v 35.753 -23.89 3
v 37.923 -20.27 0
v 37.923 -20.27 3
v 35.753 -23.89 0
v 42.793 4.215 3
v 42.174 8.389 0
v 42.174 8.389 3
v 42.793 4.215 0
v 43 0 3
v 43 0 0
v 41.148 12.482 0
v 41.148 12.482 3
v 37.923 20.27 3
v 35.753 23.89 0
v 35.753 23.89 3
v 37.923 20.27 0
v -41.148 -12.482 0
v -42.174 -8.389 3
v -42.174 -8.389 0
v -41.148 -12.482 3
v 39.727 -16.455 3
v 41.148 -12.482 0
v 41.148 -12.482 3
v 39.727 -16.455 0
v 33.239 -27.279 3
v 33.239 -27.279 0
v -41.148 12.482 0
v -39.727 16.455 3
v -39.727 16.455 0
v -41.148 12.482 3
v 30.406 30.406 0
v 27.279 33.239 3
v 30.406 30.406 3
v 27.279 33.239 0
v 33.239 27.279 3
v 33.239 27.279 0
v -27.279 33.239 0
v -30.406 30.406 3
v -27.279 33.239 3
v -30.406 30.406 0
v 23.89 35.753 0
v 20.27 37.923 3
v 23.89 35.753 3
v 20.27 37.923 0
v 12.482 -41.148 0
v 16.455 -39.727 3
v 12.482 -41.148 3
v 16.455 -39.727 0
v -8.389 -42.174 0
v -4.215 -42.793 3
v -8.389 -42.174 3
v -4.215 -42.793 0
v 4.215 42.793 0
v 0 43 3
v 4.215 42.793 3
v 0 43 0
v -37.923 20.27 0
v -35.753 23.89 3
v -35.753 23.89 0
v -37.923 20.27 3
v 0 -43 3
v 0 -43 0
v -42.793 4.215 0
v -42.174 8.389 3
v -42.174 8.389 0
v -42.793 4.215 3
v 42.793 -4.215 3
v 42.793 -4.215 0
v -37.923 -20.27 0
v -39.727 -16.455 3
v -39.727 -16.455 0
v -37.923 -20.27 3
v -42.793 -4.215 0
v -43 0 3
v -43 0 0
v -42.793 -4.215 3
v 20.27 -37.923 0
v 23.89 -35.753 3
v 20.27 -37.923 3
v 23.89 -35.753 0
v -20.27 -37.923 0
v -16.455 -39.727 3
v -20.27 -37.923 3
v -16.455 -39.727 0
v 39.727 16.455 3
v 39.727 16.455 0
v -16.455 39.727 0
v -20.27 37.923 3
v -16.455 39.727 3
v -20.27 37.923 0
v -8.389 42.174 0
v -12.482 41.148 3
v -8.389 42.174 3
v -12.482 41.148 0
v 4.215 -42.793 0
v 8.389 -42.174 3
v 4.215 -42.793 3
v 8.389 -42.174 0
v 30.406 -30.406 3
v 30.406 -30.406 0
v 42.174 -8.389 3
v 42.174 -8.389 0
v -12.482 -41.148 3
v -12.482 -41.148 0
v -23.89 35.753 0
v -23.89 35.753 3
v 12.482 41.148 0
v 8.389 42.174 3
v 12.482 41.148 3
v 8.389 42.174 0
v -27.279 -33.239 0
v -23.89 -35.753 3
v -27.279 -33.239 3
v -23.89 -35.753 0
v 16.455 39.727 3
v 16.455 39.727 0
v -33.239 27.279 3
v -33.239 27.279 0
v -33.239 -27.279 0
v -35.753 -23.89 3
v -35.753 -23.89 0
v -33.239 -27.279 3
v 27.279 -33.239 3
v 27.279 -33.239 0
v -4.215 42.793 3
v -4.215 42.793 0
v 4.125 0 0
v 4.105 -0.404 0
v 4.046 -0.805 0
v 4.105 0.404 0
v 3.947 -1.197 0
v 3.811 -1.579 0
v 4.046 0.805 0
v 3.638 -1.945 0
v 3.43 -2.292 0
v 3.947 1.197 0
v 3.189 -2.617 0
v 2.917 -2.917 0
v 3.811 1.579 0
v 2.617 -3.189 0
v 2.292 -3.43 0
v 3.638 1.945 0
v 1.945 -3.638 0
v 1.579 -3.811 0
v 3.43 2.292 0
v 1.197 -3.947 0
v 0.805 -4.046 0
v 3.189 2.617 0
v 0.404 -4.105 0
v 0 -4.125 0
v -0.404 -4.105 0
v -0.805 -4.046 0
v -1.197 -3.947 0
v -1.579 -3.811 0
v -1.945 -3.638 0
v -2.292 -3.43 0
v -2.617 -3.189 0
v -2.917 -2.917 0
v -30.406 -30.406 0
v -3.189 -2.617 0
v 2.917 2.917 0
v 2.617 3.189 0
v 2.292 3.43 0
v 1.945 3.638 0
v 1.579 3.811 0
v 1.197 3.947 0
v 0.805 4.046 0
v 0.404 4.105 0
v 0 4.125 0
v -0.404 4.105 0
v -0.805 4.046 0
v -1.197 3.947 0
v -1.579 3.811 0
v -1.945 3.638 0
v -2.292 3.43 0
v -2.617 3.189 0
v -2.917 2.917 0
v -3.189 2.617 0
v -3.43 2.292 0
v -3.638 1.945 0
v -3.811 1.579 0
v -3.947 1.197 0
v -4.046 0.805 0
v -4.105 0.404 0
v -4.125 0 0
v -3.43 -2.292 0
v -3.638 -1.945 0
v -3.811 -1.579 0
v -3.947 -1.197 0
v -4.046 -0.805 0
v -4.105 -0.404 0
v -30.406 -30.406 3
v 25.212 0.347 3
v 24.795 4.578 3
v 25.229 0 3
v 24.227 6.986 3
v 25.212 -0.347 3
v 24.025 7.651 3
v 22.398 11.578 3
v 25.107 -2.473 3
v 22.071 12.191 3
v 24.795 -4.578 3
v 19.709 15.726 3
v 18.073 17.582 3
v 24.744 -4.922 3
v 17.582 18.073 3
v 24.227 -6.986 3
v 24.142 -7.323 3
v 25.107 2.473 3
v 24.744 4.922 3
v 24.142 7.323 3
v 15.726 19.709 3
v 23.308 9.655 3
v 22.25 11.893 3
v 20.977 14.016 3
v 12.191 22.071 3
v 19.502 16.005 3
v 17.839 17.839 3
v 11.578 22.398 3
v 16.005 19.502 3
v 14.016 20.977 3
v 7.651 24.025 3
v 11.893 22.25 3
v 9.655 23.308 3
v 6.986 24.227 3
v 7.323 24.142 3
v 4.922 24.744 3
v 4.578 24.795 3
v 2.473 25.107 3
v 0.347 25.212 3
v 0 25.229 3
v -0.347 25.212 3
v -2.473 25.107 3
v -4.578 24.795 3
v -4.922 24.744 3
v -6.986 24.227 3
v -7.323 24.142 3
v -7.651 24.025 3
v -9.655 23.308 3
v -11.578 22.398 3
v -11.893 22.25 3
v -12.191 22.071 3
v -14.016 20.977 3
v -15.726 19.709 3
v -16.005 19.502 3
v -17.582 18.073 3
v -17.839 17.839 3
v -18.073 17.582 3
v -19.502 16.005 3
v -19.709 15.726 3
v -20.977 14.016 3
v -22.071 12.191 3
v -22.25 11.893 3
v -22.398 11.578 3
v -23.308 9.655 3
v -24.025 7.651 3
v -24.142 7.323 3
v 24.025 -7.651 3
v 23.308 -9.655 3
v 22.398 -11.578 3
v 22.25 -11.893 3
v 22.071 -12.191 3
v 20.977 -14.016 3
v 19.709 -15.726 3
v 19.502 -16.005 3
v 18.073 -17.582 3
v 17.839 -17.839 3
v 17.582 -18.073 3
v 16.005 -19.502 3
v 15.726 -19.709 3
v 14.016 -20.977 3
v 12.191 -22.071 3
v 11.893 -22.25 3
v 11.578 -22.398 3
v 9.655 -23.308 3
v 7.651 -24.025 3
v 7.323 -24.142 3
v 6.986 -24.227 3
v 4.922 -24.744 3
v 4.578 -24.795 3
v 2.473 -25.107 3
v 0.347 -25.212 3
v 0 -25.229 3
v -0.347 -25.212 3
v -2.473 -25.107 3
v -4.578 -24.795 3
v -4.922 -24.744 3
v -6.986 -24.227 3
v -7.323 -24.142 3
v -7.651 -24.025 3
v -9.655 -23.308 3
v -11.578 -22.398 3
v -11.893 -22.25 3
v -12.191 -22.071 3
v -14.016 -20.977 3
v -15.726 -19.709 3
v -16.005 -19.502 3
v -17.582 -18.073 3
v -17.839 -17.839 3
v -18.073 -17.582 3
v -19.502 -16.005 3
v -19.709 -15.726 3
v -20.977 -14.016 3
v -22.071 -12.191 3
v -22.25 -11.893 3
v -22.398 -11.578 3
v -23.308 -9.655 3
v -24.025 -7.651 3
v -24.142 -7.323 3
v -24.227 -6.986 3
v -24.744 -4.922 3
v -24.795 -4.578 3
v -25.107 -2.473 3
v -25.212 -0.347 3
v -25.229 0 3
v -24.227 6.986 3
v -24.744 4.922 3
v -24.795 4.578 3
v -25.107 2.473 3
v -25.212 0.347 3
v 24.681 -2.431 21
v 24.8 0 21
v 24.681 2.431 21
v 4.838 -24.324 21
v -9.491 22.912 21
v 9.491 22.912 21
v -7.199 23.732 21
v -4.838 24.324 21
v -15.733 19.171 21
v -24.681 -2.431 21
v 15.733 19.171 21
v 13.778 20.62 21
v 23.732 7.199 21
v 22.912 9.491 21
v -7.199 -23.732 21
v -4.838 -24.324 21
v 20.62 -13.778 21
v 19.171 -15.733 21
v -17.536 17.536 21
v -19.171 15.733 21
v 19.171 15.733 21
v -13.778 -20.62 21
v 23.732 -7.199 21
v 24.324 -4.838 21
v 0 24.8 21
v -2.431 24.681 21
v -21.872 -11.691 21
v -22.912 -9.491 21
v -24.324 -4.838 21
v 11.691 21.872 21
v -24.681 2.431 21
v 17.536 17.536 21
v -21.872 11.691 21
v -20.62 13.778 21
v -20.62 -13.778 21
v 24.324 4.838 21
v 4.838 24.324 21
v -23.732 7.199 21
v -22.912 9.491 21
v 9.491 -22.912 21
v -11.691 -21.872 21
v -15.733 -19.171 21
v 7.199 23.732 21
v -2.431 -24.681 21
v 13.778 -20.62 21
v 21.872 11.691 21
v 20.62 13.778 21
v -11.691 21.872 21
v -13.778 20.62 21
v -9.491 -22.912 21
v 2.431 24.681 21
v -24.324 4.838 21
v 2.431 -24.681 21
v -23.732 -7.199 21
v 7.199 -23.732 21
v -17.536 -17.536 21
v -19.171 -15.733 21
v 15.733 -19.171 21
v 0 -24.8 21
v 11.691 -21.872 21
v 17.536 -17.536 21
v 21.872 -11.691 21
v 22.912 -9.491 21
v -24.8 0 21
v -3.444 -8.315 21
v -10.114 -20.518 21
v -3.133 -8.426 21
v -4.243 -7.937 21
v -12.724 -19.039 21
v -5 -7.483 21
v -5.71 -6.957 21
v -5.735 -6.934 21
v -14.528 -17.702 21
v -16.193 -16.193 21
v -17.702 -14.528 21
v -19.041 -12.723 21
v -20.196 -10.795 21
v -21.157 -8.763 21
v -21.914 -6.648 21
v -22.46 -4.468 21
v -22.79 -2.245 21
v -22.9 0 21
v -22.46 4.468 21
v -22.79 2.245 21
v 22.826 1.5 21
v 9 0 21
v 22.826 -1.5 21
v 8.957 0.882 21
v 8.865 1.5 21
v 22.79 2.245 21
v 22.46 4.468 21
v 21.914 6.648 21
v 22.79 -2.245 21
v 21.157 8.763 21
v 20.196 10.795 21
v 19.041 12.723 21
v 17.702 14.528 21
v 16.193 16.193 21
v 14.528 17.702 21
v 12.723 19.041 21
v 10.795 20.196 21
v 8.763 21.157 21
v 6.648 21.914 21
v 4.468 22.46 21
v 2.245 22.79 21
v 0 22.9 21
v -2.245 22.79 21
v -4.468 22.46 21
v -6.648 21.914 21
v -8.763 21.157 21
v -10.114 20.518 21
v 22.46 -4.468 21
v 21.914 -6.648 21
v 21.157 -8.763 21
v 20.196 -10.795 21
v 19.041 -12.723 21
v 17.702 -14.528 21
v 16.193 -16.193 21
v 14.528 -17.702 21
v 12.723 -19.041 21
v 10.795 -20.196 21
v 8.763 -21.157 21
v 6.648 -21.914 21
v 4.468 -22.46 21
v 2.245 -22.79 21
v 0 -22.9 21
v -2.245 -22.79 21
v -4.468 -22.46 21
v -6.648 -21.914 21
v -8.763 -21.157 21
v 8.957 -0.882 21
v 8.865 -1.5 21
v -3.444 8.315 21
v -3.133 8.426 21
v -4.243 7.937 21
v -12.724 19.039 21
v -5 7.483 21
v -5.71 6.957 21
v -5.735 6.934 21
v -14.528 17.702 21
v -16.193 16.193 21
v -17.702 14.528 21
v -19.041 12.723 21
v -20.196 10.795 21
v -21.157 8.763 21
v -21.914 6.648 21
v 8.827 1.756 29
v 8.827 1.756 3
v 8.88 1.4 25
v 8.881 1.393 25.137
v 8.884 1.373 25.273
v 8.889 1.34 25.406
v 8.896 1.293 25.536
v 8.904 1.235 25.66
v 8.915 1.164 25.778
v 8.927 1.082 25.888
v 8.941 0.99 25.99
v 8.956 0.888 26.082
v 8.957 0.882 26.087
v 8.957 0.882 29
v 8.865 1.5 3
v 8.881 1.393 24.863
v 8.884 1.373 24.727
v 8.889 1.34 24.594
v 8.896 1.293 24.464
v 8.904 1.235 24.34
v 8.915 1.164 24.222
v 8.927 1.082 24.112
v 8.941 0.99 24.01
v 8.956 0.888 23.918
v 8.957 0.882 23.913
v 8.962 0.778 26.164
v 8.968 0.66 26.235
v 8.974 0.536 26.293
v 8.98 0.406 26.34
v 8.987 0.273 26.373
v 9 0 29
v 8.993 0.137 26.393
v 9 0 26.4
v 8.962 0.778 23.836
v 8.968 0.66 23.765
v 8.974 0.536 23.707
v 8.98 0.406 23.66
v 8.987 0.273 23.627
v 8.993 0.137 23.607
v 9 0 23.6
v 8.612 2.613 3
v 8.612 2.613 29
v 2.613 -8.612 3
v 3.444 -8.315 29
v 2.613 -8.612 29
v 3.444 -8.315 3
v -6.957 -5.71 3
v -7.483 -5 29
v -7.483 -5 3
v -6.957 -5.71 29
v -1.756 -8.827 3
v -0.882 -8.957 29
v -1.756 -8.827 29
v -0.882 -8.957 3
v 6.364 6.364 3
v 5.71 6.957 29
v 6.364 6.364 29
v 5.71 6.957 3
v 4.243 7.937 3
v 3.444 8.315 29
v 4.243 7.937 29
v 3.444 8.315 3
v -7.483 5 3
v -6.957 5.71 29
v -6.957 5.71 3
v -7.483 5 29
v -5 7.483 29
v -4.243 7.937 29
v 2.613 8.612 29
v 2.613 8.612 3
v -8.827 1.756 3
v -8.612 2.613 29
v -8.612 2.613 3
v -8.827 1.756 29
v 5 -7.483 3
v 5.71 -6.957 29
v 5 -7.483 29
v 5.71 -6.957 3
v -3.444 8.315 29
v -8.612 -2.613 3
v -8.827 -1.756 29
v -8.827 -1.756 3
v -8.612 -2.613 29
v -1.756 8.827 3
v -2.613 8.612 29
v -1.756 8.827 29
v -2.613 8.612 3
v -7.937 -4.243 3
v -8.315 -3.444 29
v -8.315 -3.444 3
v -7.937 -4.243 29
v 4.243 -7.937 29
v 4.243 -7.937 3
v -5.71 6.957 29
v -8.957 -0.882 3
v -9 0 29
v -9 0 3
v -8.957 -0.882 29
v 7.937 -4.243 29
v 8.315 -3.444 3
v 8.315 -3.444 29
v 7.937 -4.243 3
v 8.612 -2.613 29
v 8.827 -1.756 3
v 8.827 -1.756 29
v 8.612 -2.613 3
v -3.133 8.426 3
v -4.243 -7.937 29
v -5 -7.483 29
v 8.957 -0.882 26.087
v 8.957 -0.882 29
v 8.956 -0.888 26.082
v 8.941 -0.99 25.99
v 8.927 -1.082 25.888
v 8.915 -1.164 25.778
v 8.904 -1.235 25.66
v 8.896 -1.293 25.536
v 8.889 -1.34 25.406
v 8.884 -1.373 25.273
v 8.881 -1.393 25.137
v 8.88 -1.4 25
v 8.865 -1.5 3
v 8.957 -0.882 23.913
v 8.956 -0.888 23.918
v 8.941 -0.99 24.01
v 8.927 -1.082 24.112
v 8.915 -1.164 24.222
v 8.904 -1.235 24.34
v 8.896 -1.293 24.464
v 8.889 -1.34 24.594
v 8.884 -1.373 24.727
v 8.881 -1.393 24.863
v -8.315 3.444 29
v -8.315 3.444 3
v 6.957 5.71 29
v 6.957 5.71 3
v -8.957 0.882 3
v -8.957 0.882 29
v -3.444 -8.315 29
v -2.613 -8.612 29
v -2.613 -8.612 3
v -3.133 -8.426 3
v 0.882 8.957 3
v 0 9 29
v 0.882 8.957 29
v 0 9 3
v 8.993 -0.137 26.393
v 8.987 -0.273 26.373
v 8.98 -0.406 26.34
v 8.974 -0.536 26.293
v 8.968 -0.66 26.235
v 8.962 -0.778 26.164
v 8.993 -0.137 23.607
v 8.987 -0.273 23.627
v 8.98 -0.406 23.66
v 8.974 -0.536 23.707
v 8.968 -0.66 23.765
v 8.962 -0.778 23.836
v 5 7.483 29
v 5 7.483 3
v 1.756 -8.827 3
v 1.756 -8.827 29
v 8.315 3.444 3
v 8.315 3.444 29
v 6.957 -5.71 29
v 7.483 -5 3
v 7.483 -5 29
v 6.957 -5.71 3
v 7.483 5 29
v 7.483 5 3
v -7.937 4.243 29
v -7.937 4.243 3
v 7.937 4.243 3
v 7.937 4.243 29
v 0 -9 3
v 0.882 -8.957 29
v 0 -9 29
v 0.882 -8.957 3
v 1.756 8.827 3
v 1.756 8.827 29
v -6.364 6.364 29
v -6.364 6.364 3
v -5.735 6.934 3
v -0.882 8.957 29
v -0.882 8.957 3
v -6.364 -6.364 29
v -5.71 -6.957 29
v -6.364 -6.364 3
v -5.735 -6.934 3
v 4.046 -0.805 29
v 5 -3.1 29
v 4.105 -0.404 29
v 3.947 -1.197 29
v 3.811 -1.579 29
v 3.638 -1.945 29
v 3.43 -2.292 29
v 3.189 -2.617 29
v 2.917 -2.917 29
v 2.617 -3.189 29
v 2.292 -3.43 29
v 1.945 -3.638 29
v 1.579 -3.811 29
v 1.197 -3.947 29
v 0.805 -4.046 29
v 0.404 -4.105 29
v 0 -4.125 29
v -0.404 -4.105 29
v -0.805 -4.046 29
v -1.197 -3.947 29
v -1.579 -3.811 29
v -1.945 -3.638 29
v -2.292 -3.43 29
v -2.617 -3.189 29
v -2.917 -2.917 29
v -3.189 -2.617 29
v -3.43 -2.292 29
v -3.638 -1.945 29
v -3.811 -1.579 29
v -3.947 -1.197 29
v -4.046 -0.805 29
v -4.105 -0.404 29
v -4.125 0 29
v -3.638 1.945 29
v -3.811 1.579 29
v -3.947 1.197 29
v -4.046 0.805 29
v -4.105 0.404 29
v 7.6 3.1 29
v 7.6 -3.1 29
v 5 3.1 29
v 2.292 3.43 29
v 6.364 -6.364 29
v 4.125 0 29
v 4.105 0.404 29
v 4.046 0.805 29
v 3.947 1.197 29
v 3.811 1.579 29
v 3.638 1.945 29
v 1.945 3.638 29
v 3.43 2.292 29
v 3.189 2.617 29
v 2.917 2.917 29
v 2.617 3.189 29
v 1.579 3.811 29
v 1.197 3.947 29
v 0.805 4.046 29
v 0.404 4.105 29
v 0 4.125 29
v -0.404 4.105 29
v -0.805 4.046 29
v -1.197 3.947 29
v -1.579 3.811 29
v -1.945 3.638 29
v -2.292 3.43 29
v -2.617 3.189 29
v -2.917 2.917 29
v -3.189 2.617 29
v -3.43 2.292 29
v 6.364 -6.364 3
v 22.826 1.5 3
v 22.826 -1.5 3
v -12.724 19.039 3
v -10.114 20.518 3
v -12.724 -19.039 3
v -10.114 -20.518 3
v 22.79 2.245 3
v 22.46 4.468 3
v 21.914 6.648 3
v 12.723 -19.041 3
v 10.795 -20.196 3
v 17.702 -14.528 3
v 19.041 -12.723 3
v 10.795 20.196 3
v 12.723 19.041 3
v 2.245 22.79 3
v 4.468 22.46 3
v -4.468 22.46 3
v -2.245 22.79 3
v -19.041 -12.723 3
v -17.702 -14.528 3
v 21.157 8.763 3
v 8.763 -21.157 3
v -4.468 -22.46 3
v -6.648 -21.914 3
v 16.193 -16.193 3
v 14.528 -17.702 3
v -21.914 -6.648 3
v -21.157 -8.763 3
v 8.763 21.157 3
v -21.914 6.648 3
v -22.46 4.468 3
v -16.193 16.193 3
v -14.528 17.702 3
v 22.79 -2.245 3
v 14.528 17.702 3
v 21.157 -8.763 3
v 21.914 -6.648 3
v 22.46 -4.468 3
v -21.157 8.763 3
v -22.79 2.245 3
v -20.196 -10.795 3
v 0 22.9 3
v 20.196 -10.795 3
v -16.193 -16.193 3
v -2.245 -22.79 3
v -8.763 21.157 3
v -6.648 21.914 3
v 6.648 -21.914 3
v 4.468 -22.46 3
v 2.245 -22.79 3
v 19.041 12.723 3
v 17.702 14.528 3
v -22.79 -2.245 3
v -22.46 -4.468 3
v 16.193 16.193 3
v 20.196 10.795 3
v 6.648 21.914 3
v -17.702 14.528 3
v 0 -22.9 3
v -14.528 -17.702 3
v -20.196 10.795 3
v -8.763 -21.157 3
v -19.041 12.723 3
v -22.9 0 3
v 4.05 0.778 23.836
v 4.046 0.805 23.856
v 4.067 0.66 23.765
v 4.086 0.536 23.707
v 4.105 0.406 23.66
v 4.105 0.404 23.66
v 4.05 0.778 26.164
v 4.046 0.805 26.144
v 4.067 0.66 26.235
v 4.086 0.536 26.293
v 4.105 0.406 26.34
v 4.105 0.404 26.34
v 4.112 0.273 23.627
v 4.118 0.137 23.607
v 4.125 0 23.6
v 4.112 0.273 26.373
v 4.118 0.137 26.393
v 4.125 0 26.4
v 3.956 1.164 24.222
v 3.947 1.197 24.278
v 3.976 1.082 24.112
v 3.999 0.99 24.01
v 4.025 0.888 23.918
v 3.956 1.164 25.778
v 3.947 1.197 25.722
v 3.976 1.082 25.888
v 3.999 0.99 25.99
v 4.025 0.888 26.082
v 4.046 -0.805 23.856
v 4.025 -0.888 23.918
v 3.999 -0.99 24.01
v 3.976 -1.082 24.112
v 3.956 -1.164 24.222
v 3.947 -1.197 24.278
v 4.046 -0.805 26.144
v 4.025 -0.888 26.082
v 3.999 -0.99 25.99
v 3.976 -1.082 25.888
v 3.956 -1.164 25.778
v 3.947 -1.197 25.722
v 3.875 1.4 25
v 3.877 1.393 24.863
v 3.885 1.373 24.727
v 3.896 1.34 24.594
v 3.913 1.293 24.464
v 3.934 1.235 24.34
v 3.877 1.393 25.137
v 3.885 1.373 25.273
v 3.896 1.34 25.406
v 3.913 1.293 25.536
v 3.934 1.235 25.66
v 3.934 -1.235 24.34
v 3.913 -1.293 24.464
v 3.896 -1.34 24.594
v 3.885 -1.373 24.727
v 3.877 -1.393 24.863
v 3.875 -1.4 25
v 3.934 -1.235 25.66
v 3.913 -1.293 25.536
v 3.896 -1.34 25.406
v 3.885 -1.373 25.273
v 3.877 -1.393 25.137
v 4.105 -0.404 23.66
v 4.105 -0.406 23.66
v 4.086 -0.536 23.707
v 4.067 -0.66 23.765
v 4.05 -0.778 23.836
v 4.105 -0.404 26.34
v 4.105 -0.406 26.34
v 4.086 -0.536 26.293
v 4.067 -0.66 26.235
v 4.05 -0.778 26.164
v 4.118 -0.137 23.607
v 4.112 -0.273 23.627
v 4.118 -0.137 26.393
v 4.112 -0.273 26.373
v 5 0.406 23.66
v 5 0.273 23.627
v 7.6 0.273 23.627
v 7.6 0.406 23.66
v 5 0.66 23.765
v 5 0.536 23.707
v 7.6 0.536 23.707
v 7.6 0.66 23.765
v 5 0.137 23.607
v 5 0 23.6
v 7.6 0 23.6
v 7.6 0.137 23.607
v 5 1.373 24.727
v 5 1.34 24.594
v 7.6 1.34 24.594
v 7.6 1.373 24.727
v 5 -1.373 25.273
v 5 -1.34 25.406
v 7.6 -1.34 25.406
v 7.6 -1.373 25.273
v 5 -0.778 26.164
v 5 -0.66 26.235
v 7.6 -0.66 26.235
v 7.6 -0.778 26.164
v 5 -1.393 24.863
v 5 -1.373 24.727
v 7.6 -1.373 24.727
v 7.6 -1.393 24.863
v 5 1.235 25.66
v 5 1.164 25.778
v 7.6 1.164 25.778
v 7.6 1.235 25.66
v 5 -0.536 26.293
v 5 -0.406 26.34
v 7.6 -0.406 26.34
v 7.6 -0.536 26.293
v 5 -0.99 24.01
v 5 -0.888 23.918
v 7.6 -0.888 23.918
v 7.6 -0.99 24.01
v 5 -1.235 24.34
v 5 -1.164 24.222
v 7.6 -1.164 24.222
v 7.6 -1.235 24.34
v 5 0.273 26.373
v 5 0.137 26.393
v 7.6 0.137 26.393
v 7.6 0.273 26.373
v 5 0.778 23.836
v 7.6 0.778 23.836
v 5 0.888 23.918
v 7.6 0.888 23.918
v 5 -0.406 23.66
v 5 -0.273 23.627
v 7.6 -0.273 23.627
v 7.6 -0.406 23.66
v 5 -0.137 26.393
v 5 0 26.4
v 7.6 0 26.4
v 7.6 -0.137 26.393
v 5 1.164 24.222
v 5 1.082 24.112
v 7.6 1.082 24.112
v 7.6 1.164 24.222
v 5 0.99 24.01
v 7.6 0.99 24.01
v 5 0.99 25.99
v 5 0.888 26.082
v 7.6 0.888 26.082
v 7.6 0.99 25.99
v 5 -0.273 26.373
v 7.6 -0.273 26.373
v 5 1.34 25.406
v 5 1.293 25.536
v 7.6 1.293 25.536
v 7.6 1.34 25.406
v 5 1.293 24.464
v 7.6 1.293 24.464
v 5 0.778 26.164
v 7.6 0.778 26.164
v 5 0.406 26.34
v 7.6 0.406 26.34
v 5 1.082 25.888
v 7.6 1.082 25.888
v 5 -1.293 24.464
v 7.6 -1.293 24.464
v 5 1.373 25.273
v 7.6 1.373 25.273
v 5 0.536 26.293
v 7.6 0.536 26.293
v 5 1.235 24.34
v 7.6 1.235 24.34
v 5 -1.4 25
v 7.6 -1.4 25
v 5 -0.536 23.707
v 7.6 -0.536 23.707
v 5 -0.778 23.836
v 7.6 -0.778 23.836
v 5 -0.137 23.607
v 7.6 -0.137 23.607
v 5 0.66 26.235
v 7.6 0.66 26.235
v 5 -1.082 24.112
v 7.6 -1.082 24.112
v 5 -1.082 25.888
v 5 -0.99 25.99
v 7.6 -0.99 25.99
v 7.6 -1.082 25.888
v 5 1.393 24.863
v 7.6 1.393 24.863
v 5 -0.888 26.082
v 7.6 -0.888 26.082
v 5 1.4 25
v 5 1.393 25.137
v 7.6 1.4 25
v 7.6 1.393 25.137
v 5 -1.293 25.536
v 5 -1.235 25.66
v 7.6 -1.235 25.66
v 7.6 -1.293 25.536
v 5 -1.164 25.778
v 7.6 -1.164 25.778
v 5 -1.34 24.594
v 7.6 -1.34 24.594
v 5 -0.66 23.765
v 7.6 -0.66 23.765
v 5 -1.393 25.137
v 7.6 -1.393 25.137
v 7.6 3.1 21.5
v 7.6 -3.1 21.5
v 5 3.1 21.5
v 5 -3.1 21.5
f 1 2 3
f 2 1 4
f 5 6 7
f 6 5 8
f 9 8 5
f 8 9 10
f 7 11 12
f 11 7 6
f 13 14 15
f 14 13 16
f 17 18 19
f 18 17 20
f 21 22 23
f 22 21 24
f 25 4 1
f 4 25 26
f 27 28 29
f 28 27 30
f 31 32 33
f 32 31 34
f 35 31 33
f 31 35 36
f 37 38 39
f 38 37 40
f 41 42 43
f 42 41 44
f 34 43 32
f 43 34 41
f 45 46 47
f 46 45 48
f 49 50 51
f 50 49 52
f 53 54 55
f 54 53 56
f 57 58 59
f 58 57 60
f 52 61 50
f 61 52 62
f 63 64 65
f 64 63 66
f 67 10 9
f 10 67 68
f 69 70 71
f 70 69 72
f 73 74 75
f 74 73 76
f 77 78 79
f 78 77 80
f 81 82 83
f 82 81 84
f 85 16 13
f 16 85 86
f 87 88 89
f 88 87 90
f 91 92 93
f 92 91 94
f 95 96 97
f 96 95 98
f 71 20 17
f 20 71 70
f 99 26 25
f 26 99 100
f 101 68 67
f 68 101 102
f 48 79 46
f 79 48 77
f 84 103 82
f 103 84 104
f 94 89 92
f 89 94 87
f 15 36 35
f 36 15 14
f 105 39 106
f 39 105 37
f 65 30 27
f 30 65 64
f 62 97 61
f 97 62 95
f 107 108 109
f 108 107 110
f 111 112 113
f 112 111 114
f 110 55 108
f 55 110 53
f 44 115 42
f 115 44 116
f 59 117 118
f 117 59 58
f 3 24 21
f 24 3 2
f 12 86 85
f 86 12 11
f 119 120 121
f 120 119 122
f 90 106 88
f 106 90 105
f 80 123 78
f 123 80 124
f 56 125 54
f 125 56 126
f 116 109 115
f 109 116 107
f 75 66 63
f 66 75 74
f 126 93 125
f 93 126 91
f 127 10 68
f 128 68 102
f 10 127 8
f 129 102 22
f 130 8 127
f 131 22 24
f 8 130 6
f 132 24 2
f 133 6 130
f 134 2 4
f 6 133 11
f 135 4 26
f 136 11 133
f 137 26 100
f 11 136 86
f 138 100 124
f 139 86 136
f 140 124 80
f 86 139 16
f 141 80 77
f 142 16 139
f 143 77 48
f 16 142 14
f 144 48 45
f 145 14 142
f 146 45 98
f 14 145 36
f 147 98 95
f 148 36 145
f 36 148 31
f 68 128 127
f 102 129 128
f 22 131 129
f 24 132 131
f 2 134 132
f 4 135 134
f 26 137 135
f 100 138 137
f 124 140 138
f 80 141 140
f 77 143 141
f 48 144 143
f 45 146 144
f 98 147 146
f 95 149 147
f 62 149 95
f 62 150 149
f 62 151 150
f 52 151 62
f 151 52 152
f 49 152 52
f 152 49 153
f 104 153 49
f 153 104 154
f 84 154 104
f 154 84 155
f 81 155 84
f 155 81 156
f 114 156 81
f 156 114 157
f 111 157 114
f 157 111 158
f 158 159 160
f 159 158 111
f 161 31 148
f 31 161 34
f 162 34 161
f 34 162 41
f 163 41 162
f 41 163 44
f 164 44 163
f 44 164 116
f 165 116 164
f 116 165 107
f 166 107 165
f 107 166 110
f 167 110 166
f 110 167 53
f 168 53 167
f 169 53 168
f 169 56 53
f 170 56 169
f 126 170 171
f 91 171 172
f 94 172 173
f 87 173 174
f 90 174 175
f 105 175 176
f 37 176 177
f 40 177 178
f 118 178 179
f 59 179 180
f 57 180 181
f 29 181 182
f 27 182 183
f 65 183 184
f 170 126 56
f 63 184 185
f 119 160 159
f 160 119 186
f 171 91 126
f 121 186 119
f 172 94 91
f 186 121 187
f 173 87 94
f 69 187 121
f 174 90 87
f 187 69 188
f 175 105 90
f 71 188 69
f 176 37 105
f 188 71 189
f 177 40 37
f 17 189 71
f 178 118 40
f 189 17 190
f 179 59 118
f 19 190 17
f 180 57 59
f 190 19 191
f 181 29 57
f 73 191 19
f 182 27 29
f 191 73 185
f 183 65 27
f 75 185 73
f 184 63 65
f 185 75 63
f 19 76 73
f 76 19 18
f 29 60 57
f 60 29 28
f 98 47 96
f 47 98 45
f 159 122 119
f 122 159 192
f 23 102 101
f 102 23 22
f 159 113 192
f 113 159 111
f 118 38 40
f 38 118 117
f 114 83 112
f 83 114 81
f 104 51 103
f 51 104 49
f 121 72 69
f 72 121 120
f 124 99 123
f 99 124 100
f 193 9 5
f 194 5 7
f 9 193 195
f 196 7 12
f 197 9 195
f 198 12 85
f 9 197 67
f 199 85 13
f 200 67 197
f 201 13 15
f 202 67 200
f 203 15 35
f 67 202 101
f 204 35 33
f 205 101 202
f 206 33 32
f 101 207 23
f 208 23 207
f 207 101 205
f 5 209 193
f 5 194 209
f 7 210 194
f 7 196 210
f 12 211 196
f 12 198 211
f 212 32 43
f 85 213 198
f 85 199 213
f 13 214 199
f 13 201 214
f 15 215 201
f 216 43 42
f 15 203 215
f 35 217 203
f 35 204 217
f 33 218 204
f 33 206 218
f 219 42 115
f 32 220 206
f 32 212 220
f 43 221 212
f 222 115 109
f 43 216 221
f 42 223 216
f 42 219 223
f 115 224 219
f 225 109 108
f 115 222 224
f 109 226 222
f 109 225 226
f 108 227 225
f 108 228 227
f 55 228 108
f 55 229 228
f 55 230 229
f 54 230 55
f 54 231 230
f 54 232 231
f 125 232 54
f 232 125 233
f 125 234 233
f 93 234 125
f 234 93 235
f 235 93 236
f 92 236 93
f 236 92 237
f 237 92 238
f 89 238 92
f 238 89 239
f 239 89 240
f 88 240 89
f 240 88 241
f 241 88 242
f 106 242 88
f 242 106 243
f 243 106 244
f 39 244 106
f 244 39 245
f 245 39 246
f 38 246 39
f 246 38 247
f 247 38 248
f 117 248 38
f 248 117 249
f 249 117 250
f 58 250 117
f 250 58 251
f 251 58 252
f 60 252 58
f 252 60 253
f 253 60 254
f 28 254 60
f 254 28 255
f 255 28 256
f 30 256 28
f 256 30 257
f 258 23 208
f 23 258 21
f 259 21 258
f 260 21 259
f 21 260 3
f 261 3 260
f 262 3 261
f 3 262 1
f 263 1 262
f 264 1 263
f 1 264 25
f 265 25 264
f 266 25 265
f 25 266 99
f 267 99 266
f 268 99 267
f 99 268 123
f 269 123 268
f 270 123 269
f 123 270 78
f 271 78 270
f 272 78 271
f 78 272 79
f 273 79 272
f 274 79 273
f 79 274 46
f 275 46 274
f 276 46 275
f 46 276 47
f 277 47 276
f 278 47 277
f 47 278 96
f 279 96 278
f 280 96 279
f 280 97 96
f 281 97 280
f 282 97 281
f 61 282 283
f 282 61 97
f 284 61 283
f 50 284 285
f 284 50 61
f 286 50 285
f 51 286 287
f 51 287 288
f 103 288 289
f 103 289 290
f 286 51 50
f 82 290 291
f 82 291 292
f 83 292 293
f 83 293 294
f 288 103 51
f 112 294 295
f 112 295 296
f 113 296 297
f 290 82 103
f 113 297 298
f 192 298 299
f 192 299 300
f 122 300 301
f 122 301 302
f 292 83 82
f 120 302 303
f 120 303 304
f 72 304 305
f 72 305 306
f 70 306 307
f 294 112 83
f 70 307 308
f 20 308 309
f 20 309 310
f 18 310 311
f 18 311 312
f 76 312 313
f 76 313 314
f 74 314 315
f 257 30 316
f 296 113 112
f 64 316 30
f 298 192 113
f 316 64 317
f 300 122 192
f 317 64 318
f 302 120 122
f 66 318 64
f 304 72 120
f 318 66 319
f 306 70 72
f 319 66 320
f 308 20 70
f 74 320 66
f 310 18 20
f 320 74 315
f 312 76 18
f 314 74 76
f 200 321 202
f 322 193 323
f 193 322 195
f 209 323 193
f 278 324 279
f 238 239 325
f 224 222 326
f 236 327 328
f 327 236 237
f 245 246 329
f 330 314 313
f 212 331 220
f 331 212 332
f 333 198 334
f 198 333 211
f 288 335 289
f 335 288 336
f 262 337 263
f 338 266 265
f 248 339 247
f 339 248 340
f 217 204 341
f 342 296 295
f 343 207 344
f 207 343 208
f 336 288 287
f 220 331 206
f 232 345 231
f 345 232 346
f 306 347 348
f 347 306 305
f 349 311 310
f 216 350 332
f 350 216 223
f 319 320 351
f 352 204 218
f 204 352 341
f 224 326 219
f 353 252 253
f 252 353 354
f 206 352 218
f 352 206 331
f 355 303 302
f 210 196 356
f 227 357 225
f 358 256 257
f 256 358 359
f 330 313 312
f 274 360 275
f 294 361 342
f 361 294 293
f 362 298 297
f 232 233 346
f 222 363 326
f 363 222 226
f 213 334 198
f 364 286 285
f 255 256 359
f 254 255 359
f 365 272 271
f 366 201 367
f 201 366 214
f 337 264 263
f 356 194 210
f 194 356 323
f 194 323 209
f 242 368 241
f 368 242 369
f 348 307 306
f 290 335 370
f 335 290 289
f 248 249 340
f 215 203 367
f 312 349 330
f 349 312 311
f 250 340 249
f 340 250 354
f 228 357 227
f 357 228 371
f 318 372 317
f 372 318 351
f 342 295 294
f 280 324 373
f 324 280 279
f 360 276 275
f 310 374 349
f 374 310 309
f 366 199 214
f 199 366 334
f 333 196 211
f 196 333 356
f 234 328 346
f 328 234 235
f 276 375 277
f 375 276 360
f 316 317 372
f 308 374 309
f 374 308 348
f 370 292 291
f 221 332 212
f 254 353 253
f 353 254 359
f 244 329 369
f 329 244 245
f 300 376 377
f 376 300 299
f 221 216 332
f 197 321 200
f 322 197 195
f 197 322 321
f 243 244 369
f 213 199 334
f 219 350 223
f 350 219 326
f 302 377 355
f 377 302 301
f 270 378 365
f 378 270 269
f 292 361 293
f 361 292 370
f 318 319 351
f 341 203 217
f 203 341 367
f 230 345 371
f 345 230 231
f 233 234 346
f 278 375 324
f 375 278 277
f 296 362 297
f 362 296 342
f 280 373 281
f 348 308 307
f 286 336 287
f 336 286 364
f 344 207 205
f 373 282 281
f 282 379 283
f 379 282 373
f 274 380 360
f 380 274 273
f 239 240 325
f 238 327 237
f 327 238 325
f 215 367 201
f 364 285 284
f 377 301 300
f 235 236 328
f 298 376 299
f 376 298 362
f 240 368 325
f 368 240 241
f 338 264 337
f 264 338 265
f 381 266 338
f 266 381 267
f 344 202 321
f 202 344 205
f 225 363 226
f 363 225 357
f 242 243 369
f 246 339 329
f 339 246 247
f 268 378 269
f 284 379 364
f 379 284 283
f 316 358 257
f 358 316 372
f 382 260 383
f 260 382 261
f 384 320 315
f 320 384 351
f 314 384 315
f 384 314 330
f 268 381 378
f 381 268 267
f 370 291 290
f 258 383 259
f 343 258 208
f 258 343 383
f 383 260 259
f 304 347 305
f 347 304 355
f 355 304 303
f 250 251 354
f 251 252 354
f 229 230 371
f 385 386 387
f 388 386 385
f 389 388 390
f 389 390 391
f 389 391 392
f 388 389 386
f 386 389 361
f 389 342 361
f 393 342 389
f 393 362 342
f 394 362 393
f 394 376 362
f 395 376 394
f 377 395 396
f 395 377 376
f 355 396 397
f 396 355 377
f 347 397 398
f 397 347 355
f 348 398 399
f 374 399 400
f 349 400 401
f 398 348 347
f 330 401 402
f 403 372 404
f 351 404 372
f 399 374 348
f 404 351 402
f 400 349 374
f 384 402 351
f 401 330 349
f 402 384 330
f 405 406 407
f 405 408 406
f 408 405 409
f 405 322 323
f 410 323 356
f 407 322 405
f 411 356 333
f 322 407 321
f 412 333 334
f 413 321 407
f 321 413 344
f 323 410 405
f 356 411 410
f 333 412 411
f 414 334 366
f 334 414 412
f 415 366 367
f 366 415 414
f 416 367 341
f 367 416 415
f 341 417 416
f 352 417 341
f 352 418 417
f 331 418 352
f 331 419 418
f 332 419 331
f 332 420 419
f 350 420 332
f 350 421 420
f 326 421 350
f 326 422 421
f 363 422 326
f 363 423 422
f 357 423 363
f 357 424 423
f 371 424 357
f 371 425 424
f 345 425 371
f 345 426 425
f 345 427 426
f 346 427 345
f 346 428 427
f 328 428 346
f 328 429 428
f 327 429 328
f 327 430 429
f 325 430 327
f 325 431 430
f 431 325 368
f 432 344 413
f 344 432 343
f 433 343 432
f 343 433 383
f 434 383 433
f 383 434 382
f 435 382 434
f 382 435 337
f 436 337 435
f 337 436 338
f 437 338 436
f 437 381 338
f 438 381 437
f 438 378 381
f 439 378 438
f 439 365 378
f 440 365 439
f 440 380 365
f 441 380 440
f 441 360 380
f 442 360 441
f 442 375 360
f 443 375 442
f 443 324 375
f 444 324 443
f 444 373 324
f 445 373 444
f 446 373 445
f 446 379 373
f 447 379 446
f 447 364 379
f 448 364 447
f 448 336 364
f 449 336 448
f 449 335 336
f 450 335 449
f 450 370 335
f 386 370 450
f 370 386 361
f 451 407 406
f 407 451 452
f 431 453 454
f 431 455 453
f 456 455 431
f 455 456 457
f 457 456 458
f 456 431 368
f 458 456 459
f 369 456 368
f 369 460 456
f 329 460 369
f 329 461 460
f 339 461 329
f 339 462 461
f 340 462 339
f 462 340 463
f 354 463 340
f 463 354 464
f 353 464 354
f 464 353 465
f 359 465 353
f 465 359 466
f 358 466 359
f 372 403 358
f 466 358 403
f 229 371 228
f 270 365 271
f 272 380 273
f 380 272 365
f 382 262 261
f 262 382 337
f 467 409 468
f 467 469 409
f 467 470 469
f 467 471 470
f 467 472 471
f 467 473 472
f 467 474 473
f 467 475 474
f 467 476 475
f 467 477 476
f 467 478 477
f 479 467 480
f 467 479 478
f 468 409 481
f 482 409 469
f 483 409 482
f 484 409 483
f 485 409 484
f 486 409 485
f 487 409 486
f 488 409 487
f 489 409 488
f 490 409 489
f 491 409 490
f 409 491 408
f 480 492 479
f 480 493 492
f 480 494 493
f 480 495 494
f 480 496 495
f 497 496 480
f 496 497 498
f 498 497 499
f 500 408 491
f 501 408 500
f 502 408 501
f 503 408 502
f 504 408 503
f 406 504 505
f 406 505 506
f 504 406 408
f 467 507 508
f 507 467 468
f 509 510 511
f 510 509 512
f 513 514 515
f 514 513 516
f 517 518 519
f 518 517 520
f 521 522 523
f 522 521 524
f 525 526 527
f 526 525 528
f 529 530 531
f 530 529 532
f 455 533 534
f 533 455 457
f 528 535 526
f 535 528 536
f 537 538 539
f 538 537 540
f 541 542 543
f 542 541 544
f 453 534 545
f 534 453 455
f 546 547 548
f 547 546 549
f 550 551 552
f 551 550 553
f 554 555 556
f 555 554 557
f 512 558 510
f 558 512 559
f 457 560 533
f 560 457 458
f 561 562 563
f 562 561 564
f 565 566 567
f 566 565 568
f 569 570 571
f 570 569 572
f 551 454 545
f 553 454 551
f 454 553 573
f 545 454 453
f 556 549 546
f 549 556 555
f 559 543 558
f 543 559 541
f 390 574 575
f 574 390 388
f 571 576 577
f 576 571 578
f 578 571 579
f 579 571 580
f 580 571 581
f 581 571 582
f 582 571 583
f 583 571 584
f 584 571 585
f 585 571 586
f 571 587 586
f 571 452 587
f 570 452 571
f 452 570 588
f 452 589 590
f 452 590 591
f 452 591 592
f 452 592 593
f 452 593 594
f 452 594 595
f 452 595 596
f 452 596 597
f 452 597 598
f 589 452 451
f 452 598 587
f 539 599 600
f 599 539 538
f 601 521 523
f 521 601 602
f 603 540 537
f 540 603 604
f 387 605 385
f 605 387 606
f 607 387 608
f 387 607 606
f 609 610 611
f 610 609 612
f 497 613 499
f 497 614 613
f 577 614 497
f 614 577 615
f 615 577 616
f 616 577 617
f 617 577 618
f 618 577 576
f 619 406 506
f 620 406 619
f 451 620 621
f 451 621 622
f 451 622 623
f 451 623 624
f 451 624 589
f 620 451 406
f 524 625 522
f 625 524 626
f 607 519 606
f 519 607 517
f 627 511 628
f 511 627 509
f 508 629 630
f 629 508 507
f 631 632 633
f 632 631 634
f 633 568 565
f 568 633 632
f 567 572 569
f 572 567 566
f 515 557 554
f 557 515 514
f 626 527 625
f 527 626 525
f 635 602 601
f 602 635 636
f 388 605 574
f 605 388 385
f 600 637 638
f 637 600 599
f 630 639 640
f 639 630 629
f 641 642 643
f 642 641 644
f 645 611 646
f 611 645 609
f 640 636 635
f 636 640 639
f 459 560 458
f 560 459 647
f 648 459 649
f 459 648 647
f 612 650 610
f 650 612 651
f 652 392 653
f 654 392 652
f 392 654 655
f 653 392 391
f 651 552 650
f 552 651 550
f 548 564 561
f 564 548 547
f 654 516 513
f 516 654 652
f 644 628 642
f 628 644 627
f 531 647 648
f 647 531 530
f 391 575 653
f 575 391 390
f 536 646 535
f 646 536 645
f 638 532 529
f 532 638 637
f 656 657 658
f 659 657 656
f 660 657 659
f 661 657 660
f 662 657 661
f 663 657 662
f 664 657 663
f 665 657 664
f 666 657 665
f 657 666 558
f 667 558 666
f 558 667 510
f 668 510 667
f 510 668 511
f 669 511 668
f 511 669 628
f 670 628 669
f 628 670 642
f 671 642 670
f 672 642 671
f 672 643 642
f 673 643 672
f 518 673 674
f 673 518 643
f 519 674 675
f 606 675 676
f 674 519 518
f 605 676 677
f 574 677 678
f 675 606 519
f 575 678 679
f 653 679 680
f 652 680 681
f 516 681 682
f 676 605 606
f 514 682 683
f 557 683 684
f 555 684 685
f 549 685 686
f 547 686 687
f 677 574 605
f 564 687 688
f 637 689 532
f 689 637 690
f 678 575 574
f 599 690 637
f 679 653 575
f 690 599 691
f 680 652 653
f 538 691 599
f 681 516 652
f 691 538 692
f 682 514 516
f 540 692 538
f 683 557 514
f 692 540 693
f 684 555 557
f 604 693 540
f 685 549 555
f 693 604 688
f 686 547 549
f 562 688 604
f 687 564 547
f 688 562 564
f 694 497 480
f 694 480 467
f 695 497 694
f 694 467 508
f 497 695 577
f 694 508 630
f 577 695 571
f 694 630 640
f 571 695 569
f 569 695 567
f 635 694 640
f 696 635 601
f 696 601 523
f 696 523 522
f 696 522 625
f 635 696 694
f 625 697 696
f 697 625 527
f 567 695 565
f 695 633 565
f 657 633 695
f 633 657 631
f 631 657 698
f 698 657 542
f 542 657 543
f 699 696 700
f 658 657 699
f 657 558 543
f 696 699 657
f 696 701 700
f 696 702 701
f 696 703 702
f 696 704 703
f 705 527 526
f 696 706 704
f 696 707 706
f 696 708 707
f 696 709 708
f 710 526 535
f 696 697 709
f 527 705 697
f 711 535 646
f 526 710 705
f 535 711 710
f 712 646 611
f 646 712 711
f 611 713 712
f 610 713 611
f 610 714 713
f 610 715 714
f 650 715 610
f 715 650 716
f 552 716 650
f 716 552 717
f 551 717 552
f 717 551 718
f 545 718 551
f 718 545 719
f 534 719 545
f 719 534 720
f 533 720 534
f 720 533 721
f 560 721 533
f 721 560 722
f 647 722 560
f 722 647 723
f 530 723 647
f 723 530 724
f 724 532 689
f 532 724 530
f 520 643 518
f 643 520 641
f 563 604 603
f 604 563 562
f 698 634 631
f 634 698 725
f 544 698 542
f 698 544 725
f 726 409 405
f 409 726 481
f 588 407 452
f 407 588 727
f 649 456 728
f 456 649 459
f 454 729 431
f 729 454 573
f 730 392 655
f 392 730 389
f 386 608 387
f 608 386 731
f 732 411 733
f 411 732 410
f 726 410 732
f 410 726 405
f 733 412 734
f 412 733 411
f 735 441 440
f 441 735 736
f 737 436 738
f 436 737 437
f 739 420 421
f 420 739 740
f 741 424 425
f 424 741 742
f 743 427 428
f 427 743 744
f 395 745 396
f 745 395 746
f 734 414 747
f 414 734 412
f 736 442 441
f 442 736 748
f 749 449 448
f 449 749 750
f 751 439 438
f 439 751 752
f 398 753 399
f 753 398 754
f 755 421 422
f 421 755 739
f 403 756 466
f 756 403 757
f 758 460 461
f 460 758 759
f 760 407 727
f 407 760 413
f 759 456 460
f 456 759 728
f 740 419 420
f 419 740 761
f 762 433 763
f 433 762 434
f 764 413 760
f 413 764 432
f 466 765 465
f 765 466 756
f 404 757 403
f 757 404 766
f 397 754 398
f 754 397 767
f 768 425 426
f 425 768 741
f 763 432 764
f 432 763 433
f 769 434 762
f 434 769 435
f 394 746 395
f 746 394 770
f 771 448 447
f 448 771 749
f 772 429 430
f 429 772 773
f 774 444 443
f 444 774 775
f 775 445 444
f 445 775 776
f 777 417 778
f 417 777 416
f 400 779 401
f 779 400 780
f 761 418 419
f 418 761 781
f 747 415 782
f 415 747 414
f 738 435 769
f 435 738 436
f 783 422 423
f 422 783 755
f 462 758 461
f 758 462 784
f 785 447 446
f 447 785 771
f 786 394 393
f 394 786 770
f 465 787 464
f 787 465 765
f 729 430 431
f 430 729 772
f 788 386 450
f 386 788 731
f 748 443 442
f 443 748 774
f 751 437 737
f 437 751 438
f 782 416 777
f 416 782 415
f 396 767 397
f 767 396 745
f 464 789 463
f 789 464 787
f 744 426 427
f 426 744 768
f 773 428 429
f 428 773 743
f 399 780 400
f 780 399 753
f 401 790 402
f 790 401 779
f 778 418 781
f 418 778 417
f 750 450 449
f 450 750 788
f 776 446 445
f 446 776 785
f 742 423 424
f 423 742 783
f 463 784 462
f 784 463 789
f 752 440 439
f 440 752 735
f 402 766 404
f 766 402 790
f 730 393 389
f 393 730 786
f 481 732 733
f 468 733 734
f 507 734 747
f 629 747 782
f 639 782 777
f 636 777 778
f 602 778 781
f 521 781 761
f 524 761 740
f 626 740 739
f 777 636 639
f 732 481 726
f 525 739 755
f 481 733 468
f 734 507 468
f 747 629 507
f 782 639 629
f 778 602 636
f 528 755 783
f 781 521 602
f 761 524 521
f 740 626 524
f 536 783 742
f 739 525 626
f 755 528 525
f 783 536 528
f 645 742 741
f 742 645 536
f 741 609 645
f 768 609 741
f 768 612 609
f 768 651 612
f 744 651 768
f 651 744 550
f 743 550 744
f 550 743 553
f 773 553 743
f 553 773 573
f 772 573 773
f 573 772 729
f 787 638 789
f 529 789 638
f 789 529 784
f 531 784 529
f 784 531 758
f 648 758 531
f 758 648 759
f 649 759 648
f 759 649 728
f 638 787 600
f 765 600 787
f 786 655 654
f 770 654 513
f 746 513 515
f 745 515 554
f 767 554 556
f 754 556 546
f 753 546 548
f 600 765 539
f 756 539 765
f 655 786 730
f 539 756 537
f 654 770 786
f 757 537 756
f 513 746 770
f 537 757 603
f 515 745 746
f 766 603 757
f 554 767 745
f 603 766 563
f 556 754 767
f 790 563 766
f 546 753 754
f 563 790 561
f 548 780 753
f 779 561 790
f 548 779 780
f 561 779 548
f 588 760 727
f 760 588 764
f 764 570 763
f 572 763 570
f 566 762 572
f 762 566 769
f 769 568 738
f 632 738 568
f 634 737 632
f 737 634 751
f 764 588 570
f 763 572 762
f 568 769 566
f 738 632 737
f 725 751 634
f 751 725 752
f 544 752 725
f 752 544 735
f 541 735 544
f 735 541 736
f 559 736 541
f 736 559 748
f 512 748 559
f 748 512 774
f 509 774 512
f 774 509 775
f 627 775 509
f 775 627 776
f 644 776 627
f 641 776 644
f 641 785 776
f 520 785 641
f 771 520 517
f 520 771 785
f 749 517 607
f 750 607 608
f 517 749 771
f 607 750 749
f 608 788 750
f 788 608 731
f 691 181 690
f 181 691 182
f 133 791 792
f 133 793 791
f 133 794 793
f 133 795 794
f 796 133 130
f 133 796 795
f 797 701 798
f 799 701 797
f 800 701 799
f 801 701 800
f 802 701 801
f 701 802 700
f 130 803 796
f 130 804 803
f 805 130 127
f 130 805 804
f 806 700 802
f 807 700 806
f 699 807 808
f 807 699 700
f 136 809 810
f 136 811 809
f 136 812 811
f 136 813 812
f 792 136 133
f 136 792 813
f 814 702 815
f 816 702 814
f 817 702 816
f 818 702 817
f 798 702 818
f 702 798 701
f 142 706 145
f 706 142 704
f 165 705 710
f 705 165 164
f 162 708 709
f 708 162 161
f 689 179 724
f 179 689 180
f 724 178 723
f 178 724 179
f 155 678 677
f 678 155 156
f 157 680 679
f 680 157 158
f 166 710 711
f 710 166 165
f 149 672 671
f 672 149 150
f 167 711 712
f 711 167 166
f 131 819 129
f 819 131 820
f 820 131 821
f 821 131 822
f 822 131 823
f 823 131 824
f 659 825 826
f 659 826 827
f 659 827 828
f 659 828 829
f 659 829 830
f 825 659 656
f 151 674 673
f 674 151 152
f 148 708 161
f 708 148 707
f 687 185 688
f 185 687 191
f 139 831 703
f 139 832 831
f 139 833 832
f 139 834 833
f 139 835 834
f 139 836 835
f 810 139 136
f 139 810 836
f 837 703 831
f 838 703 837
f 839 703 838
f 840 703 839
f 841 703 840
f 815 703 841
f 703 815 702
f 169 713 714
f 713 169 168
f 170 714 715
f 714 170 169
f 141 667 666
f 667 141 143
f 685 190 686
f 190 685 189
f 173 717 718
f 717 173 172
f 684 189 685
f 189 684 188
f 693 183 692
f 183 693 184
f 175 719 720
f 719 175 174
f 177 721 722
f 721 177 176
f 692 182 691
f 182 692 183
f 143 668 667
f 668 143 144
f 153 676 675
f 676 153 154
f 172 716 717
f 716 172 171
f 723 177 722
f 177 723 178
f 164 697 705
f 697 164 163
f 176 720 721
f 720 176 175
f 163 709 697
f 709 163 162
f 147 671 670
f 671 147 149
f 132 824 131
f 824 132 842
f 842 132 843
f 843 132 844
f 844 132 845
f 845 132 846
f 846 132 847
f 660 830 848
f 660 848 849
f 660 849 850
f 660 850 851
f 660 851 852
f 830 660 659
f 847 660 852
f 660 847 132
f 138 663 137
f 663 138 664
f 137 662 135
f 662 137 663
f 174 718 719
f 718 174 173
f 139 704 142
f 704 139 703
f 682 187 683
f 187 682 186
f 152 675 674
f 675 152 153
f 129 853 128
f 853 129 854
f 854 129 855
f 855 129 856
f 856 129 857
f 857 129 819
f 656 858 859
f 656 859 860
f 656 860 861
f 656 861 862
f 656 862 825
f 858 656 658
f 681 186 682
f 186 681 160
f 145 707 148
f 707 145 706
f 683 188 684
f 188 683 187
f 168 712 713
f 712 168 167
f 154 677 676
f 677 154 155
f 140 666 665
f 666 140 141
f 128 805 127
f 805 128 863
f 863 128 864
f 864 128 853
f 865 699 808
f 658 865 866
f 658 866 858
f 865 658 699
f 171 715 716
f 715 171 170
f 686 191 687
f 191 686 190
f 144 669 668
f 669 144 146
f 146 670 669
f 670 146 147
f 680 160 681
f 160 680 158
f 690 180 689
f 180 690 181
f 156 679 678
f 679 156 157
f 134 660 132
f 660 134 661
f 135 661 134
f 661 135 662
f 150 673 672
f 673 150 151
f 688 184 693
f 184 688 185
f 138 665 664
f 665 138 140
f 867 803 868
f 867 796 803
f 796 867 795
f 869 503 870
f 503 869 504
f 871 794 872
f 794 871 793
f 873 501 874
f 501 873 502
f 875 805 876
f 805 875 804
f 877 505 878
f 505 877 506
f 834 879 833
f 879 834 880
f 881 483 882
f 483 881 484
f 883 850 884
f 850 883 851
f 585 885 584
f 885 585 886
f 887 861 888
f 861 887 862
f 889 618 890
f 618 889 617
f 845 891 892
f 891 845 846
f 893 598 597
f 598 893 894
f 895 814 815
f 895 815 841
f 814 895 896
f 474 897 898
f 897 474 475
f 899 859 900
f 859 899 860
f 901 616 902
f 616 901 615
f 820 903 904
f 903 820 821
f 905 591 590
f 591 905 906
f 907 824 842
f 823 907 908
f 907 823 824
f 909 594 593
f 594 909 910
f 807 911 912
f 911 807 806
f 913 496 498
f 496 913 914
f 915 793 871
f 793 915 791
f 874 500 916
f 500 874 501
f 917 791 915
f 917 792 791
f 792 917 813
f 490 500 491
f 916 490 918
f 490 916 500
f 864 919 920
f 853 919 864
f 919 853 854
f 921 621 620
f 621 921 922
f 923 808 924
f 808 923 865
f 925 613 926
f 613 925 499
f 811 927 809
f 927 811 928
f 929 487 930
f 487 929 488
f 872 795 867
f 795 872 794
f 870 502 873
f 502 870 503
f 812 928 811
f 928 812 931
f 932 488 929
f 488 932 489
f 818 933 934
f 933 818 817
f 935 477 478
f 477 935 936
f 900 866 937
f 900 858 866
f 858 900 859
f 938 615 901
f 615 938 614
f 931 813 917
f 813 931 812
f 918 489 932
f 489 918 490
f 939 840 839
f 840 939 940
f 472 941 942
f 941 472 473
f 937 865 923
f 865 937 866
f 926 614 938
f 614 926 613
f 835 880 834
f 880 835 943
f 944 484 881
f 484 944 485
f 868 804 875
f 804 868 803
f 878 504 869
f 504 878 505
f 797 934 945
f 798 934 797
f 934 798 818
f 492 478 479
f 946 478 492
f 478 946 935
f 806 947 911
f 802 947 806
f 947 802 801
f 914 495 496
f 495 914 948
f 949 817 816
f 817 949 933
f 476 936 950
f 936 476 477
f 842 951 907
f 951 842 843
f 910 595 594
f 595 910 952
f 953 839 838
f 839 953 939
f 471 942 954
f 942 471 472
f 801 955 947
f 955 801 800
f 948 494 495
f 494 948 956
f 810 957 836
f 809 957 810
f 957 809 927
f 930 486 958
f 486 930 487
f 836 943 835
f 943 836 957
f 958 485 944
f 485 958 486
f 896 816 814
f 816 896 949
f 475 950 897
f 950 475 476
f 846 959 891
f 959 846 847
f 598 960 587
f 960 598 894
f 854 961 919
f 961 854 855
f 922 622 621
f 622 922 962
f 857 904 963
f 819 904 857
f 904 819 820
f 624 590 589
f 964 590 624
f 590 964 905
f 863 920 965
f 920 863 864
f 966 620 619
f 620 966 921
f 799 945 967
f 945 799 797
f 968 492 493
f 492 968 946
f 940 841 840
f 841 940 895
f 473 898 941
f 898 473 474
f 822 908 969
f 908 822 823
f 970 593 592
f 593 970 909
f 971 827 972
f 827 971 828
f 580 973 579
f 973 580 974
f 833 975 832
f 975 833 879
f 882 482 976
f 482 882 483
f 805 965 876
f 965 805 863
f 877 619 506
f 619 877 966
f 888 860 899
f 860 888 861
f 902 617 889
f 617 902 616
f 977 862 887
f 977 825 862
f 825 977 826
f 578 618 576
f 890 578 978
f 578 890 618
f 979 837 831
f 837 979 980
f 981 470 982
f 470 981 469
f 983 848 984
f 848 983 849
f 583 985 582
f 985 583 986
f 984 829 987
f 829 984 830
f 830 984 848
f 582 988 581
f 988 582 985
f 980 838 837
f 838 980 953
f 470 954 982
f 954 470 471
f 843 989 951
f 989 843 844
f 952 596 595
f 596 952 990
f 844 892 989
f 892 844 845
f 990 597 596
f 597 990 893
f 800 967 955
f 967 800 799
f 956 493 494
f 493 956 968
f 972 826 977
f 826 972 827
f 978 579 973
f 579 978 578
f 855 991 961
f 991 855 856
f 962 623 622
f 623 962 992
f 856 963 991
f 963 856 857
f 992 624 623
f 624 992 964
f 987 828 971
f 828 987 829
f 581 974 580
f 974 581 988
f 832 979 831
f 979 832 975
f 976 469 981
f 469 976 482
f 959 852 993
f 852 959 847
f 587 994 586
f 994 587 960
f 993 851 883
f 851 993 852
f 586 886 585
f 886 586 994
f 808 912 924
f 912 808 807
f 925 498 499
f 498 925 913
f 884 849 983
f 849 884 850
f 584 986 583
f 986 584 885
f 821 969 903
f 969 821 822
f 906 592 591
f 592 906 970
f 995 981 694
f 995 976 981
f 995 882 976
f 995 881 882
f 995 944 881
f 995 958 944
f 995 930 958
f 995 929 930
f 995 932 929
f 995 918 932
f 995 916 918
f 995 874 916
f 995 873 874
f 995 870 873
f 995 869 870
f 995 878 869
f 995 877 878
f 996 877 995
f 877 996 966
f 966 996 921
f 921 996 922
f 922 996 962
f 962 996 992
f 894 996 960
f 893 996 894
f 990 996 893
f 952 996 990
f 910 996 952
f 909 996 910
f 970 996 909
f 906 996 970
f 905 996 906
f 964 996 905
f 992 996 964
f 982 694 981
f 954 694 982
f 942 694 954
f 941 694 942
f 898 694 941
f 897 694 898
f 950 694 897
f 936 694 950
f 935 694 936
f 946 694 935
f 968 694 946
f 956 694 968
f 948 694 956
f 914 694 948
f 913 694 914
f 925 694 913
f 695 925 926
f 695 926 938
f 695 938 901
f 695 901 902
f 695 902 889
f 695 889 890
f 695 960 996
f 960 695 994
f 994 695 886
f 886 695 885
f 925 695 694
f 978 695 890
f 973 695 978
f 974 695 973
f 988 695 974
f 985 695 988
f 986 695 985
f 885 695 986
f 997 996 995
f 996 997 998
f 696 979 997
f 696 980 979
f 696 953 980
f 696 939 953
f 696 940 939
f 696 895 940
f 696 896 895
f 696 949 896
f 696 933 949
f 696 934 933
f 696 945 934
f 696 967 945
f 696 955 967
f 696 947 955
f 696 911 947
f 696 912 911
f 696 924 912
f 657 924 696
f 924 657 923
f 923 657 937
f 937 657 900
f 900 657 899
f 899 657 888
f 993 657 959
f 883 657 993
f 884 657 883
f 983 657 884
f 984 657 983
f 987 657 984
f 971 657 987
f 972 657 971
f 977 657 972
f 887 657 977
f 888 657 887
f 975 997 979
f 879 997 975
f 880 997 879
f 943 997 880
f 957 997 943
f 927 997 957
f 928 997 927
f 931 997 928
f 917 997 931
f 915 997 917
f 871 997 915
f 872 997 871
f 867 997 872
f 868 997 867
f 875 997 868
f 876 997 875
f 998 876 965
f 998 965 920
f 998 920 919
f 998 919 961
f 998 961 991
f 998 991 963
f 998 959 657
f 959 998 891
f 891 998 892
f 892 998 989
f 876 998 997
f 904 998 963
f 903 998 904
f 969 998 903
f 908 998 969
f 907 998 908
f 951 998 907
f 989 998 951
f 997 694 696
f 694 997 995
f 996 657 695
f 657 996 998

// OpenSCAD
// file: common.scad
// Shared parameters for the openprint-build printable parts.
//
// These are NOT Open Tools' files (unpublished as of Oct 2026). They are
// original, parametric parts built around standard off-the-shelf components.
// Values marked VERIFY are best estimates: measure your part and edit here.
//
// Coordinate frame used by the axis parts:
//   X = carriage travel (along the guide rods)
//   Y = front (+) / back (-)
//   Z = up
// Lower rod axis at y=0,z=0; upper rod at y=0,z=rod_spacing.

$fn = 64;

clr        = 0.3;    // general fit clearance (Prusa CORE One, 0.4 nozzle)

// Guide rods + linear bearings
rod_d       = 8;     // steel guide rod
rod_spacing = 30;    // vertical distance between the two rods
lm_d        = 15;    // LM8UU outer diameter
lm_l        = 24;    // LM8UU length
lm_fit      = 0.15;  // press fit allowance on LM8UU bore

// GT2 belt drive
belt_w      = 6;     // GT2 6 mm belt
belt_t      = 1.4;   // belt thickness incl. teeth
belt_pitch  = 2;
pulley_pr   = 6.37;  // pitch radius of a GT2 20T pulley / idler
belt_y      = -18;   // belt centre plane (behind the rods)
belt_z      = rod_spacing / 2;   // pulley axis height

// NEMA17
nema_w      = 42.3;
nema_holes  = 31;    // hole spacing
nema_boss   = 22.5;  // centring boss clearance
m3          = 3.4;   // M3 clearance
m3_tap      = 2.8;   // M3 self-tap into plastic
m5          = 5.3;
m5_tap      = 4.3;
m4          = 4.4;

// HP 63 / 302 / 803 cartridge body (same shell for black + tri-colour)
// VERIFY: measure with calipers, or print cart_fit_gauge.stl first.
cart_w      = 19.0;  // along X (thin side)
cart_d      = 36.5;  // along Y (front-back, contact pad on the back face)
cart_fit    = 0.6;   // total clearance per dimension

// Teardrop: horizontal hole that prints without supports.
// Axis along X; point faces +Z.
module teardrop_x(d, l) {
    // rotate([0,90,0]) maps 2D -X to 3D +Z, so the point goes at 180°.
    rotate([0, 90, 0])
    linear_extrude(height = l, center = true)
        union() {
            circle(d = d);
            rotate(135) square(d / 2);  // 45° roof
        }
}

// Same, axis along Y.
module teardrop_y(d, l) {
    // rotate([90,0,0]) maps 2D +Y to 3D +Z.
    rotate([90, 0, 0])
    linear_extrude(height = l, center = true)
        union() {
            circle(d = d);
            rotate(45) square(d / 2);
        }
}

// ---------------------------------------------------------------------------
// Machine layout (frame coordinates). Origin: inner face of the left end wall,
// back face of the tray, bottom of the base. X right, Y toward the front, Z up.
// The axis parts above are modelled around their own rod; place them with
// rod_y / rod_z below.

L        = 525;      // inner length between end walls (outer = L + 2*wall)
wall     = 6;        // end wall / tray wall thickness
base_t   = 4;        // tray floor
depth    = 130;      // tray depth (Y)
height   = 105;      // tray height (Z), excluding roll arms

rod_y    = 70;       // both rods in one vertical plane
rod_z    = 50;       // lower rod; upper rod at rod_z + rod_spacing
paper_z  = 37;       // paper plane (top of platen ribs, the nip)
paper_x0 = 94;       // paper zone, 297 mm (A4 width / A3 roll)
paper_x1 = paper_x0 + 297;

pulley_x = 25;       // carriage motor pulley (left)
idler_x  = 445;      // belt idler (right)

feed_y   = 38;       // feed roller shaft (driven, top of the nip)
feed_r   = 12.3;     // TPU sleeve radius, 0.3 interference on the pinch
feed_z   = paper_z + 12;
pinch_z  = paper_z - 11;    // 608 bearings (r = 11) roll on the pinch shaft

pillar_x = [47, 425];       // inboard shaft supports (left edge of each, 8 wide)

roll_y   = 50;       // roll spindle axis
roll_z   = 155;
b608_d   = 22;
b608_w   = 7;

split_x  = [175, 350];      // tray section joints
// main file
// Roll hub (print 2). Plugs into the roll's cardboard core and clamps to the
// 8 mm spindle with an M3 grub screw. A 608 bearing on each spindle end drops
// into the slot in the end-wall roll arm.
//
// Print flange-down. VERIFY core_id: 2" (50.8) is common for 297 mm plotter
// rolls; set 25.4 for 1" cores.

include <common.scad>

core_id   = 50.8;
plug_l    = 18;
flange_d  = 86;      // keeps the roll square; < 2 * (roll_z - height)
flange_t  = 3;
hub_d     = 18;

difference() {
    union() {
        cylinder(d = flange_d, h = flange_t);
        // plug: slight taper so it wedges into the core
        cylinder(d1 = core_id - 0.2, d2 = core_id - 1.2, h = flange_t + plug_l);
        cylinder(d = hub_d, h = flange_t + plug_l + 8);
    }
    // hollow the plug, leave 3 spokes
    difference() {
        translate([0, 0, flange_t]) cylinder(d = core_id - 5, h = plug_l + 1);
        cylinder(d = hub_d, h = 100);
        for (a = [0, 120, 240]) rotate(a) translate([0, -1.5, 0]) cube([core_id, 3, 100]);
    }
    translate([0, 0, -1]) cylinder(d = rod_d + 0.25, h = 100);
    // M3 grub screw + nut trap in the boss
    translate([0, 0, flange_t + plug_l + 4]) rotate([0, 90, 0]) cylinder(d = m3_tap, h = hub_d);
    translate([hub_d / 2 - 4, -3.1, flange_t + plug_l + 0.5]) cube([2.6, 6.2, 20]);
}
